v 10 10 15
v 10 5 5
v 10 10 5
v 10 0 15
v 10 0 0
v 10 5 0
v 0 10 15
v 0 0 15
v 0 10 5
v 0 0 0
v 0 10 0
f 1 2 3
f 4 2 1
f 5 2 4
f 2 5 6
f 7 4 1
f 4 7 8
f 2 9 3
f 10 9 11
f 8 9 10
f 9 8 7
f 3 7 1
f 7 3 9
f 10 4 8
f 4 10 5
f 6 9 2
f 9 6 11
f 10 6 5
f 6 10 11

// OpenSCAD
module reconstructed_model() {
    // Base cube
    translate([0, 0, 5]) // Lift the base cube to align
    cube([10, 10, 10]);

    // Sloped part
    translate([0, 0, 0])
    linear_extrude(height = 5)
    polygon(points=[
        [0, 0], 
        [10, 0], 
        [10, 5], 
        [0, 10]
    ]);
}

reconstructed_model();
